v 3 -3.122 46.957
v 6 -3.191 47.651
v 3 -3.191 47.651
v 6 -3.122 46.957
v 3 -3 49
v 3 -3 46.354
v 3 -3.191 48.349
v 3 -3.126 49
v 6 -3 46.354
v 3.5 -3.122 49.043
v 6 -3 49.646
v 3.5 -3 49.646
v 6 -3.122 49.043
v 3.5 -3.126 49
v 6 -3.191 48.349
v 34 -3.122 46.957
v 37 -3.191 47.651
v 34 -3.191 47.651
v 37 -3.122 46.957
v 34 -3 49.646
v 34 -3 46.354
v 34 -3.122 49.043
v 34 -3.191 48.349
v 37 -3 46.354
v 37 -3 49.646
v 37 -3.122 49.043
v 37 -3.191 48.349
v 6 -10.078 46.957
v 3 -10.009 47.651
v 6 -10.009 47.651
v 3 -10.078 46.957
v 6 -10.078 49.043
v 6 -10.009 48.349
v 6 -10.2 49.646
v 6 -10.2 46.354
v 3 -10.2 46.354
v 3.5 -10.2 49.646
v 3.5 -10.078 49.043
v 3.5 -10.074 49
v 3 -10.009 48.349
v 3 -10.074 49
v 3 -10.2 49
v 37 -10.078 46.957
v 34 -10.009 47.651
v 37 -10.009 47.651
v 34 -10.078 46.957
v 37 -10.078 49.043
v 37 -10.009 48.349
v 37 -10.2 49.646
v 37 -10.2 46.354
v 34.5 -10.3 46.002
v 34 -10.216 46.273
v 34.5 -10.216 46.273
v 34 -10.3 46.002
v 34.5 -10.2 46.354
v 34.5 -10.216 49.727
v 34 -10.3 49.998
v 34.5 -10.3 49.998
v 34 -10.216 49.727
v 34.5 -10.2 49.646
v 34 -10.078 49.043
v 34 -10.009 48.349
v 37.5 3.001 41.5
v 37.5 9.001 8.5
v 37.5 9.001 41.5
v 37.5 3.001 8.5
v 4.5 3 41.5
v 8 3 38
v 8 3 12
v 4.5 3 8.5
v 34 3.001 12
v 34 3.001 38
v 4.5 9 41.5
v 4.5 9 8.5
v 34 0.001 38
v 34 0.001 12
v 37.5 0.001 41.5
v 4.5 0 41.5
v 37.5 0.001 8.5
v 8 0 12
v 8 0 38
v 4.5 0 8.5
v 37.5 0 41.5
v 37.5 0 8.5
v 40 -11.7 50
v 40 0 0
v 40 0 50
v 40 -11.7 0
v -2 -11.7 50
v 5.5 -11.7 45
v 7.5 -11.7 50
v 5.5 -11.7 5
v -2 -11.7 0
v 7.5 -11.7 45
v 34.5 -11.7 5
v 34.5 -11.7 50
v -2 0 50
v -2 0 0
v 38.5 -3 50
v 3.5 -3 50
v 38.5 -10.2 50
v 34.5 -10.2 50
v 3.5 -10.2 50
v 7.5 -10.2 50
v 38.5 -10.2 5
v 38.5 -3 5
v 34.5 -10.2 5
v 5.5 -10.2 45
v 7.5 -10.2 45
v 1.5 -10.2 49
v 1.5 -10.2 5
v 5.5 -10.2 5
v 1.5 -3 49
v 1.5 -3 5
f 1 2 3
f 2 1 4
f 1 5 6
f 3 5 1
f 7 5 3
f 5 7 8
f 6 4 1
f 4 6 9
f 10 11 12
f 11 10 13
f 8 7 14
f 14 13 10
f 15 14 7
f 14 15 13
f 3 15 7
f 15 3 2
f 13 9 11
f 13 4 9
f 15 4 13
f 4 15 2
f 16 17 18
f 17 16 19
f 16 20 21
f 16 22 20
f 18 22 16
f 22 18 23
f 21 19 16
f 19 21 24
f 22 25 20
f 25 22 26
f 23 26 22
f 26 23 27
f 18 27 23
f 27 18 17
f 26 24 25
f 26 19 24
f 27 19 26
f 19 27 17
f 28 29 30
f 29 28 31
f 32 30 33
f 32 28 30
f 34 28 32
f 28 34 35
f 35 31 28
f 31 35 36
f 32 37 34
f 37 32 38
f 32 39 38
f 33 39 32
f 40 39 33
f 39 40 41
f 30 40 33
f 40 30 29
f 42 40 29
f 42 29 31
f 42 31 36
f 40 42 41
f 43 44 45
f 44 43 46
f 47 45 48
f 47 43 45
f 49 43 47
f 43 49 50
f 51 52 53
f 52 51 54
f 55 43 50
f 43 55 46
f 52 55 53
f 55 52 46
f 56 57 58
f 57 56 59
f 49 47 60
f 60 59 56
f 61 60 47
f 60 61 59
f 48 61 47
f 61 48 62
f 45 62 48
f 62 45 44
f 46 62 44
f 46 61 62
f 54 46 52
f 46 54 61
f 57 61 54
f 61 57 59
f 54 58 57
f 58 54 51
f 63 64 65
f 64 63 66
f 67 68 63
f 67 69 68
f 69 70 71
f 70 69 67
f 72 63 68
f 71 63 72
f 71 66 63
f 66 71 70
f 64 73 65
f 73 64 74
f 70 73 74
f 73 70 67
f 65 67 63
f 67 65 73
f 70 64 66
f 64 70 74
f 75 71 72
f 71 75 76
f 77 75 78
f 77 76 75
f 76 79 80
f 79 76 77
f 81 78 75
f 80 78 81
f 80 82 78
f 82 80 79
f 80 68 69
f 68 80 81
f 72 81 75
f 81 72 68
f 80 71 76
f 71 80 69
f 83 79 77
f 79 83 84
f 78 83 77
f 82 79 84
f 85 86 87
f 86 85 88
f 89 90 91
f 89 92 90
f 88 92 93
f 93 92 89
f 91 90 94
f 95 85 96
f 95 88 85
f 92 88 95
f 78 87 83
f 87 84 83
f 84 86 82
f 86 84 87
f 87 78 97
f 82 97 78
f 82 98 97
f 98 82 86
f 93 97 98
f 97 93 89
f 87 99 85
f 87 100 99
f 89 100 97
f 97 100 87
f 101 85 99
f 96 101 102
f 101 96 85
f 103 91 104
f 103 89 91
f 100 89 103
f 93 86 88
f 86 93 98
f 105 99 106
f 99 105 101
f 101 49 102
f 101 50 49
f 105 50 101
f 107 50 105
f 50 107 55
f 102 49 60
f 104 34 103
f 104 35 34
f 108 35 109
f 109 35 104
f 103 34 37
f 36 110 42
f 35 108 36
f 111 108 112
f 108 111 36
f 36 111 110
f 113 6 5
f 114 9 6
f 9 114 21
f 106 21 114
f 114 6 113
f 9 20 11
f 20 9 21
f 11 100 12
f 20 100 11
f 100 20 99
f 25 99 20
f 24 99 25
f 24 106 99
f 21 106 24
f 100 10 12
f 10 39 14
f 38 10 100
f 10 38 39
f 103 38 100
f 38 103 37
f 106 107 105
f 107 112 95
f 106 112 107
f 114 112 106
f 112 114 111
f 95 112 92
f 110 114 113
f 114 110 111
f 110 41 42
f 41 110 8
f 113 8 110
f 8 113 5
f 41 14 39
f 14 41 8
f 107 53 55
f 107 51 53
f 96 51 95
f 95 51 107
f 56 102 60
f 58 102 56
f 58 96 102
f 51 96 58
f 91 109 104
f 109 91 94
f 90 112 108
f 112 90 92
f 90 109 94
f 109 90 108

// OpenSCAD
// file: greenhouse_arm_head.scad
/*
The MIT License (MIT)

Copyright (c) 2020 Shinichi Ohki.

Permission is hereby granted, free of charge, to any person obtaining a copy
of this software and associated documentation files (the "Software"), to deal
in the Software without restriction, including without limitation the rights
to use, copy, modify, merge, publish, distribute, sublicense, and/or sell
copies of the Software, and to permit persons to whom the Software is
furnished to do so, subject to the following conditions:

The above copyright notice and this permission notice shall be included in
all copies or substantial portions of the Software.

THE SOFTWARE IS PROVIDED "AS IS", WITHOUT WARRANTY OF ANY KIND, EXPRESS OR
IMPLIED, INCLUDING BUT NOT LIMITED TO THE WARRANTIES OF MERCHANTABILITY,
FITNESS FOR A PARTICULAR PURPOSE AND NONINFRINGEMENT. IN NO EVENT SHALL THE
AUTHORS OR COPYRIGHT HOLDERS BE LIABLE FOR ANY CLAIM, DAMAGES OR OTHER
LIABILITY, WHETHER IN AN ACTION OF CONTRACT, TORT OR OTHERWISE, ARISING FROM,
OUT OF OR IN CONNECTION WITH THE SOFTWARE OR THE USE OR OTHER DEALINGS IN
THE SOFTWARE.
*/

maleBaseWidth = 33;
maleBaseThick = 6;
maleMiddleWidth = 26;
maleMiddleThick = 3;
maleTopWidth = 33;
maleTopThick = 3;

$fn = 63;

module HeadMale(BaseWidth=maleBaseWidth,BaseThick=maleBaseThick,MiddleWidth=maleMiddleWidth,MiddleThick=maleMiddleThick,TopWidth=maleTopWidth,TopThick=maleTopThick) {
    translate([0,0,0]){
        cube([BaseWidth,BaseWidth,BaseThick]);
    }

    translate([(BaseWidth-MiddleWidth)/2,(BaseWidth-MiddleWidth)/2,BaseThick]){
        cube([MiddleWidth,MiddleWidth,MiddleThick]);
    }

    translate([0,0,BaseThick+MiddleThick]){
        cube([TopWidth,TopWidth,TopThick]);
    }
}

module  tokki() {
    // 突起
    difference() {
        rotate([0,90,0]) {
            cylinder(3,7,7);
        }
        translate([-0.1,-10,-8.3]){
            cube([3.2, 20, 15]);
        }
    }
}
// main file
/*
The MIT License (MIT)

Copyright (c) 2020 Shinichi Ohki.

Permission is hereby granted, free of charge, to any person obtaining a copy
of this software and associated documentation files (the "Software"), to deal
in the Software without restriction, including without limitation the rights
to use, copy, modify, merge, publish, distribute, sublicense, and/or sell
copies of the Software, and to permit persons to whom the Software is
furnished to do so, subject to the following conditions:

The above copyright notice and this permission notice shall be included in
all copies or substantial portions of the Software.

THE SOFTWARE IS PROVIDED "AS IS", WITHOUT WARRANTY OF ANY KIND, EXPRESS OR
IMPLIED, INCLUDING BUT NOT LIMITED TO THE WARRANTIES OF MERCHANTABILITY,
FITNESS FOR A PARTICULAR PURPOSE AND NONINFRINGEMENT. IN NO EVENT SHALL THE
AUTHORS OR COPYRIGHT HOLDERS BE LIABLE FOR ANY CLAIM, DAMAGES OR OTHER
LIABILITY, WHETHER IN AN ACTION OF CONTRACT, TORT OR OTHERWISE, ARISING FROM,
OUT OF OR IN CONNECTION WITH THE SOFTWARE OR THE USE OR OTHER DEALINGS IN
THE SOFTWARE.
*/

include <greenhouse_arm_head.scad>

femaleBaseWidth = 42;
femaleBaseLength = 50;
femaleBaseThick = maleBaseThick+maleMiddleThick+2.7;

module HeadFemale() {
    difference() {
        // 全体
        translate([-2,0,0]){
            cube([femaleBaseWidth,femaleBaseLength,femaleBaseThick]);
        }
        // 中の空間
        translate([(femaleBaseWidth-(maleBaseWidth+2))/2,5,3]){
            cube([maleBaseWidth+2,femaleBaseLength,maleBaseThick+1.2]);
        }
        // 横の空間
        translate([(femaleBaseWidth-(maleBaseWidth+2))/2-2,5,3]){
            #cube([maleBaseWidth+2,femaleBaseLength-(maleMiddleThick+2)-1,maleBaseThick+1.2]);
        }
        // 上の空間
        translate([(femaleBaseWidth-(maleMiddleWidth+1))/2,5,10-1]){
            cube([maleMiddleWidth+1,femaleBaseLength,maleMiddleThick+2]);
        }
        // 上横の空間
        translate([(femaleBaseWidth-(maleMiddleWidth+1))/2-2,5,10-1]){
            #cube([maleMiddleWidth+1,femaleBaseLength-(maleMiddleThick+2)-5,maleMiddleThick+2]);
        }
    }
    translate([3,femaleBaseWidth-4+10,-3.8]) {
        tokki();
    }
    translate([maleBaseWidth+1,femaleBaseWidth-4+10,-3.8]) {
        tokki();
    }
    translate([3+3,femaleBaseWidth-4+10,femaleBaseThick+5.3]) {
        rotate([0,180,0]) {
            tokki();
        }
    }
    translate([maleBaseWidth+1+3,femaleBaseWidth-4+10,femaleBaseThick+5.3]) {
        rotate([0,180,0]) {
            tokki();
        }
    }
}

module Adaptor() {
    translate([(femaleBaseWidth-maleBaseWidth)/2,(femaleBaseLength-maleBaseWidth)/2,-(maleBaseThick+maleMiddleThick)]){
        rotate([0,0.001,0]) {
            HeadMale();
        }
    }
    HeadFemale();
}

rotate([90,0,0]) {
    Adaptor();
}
